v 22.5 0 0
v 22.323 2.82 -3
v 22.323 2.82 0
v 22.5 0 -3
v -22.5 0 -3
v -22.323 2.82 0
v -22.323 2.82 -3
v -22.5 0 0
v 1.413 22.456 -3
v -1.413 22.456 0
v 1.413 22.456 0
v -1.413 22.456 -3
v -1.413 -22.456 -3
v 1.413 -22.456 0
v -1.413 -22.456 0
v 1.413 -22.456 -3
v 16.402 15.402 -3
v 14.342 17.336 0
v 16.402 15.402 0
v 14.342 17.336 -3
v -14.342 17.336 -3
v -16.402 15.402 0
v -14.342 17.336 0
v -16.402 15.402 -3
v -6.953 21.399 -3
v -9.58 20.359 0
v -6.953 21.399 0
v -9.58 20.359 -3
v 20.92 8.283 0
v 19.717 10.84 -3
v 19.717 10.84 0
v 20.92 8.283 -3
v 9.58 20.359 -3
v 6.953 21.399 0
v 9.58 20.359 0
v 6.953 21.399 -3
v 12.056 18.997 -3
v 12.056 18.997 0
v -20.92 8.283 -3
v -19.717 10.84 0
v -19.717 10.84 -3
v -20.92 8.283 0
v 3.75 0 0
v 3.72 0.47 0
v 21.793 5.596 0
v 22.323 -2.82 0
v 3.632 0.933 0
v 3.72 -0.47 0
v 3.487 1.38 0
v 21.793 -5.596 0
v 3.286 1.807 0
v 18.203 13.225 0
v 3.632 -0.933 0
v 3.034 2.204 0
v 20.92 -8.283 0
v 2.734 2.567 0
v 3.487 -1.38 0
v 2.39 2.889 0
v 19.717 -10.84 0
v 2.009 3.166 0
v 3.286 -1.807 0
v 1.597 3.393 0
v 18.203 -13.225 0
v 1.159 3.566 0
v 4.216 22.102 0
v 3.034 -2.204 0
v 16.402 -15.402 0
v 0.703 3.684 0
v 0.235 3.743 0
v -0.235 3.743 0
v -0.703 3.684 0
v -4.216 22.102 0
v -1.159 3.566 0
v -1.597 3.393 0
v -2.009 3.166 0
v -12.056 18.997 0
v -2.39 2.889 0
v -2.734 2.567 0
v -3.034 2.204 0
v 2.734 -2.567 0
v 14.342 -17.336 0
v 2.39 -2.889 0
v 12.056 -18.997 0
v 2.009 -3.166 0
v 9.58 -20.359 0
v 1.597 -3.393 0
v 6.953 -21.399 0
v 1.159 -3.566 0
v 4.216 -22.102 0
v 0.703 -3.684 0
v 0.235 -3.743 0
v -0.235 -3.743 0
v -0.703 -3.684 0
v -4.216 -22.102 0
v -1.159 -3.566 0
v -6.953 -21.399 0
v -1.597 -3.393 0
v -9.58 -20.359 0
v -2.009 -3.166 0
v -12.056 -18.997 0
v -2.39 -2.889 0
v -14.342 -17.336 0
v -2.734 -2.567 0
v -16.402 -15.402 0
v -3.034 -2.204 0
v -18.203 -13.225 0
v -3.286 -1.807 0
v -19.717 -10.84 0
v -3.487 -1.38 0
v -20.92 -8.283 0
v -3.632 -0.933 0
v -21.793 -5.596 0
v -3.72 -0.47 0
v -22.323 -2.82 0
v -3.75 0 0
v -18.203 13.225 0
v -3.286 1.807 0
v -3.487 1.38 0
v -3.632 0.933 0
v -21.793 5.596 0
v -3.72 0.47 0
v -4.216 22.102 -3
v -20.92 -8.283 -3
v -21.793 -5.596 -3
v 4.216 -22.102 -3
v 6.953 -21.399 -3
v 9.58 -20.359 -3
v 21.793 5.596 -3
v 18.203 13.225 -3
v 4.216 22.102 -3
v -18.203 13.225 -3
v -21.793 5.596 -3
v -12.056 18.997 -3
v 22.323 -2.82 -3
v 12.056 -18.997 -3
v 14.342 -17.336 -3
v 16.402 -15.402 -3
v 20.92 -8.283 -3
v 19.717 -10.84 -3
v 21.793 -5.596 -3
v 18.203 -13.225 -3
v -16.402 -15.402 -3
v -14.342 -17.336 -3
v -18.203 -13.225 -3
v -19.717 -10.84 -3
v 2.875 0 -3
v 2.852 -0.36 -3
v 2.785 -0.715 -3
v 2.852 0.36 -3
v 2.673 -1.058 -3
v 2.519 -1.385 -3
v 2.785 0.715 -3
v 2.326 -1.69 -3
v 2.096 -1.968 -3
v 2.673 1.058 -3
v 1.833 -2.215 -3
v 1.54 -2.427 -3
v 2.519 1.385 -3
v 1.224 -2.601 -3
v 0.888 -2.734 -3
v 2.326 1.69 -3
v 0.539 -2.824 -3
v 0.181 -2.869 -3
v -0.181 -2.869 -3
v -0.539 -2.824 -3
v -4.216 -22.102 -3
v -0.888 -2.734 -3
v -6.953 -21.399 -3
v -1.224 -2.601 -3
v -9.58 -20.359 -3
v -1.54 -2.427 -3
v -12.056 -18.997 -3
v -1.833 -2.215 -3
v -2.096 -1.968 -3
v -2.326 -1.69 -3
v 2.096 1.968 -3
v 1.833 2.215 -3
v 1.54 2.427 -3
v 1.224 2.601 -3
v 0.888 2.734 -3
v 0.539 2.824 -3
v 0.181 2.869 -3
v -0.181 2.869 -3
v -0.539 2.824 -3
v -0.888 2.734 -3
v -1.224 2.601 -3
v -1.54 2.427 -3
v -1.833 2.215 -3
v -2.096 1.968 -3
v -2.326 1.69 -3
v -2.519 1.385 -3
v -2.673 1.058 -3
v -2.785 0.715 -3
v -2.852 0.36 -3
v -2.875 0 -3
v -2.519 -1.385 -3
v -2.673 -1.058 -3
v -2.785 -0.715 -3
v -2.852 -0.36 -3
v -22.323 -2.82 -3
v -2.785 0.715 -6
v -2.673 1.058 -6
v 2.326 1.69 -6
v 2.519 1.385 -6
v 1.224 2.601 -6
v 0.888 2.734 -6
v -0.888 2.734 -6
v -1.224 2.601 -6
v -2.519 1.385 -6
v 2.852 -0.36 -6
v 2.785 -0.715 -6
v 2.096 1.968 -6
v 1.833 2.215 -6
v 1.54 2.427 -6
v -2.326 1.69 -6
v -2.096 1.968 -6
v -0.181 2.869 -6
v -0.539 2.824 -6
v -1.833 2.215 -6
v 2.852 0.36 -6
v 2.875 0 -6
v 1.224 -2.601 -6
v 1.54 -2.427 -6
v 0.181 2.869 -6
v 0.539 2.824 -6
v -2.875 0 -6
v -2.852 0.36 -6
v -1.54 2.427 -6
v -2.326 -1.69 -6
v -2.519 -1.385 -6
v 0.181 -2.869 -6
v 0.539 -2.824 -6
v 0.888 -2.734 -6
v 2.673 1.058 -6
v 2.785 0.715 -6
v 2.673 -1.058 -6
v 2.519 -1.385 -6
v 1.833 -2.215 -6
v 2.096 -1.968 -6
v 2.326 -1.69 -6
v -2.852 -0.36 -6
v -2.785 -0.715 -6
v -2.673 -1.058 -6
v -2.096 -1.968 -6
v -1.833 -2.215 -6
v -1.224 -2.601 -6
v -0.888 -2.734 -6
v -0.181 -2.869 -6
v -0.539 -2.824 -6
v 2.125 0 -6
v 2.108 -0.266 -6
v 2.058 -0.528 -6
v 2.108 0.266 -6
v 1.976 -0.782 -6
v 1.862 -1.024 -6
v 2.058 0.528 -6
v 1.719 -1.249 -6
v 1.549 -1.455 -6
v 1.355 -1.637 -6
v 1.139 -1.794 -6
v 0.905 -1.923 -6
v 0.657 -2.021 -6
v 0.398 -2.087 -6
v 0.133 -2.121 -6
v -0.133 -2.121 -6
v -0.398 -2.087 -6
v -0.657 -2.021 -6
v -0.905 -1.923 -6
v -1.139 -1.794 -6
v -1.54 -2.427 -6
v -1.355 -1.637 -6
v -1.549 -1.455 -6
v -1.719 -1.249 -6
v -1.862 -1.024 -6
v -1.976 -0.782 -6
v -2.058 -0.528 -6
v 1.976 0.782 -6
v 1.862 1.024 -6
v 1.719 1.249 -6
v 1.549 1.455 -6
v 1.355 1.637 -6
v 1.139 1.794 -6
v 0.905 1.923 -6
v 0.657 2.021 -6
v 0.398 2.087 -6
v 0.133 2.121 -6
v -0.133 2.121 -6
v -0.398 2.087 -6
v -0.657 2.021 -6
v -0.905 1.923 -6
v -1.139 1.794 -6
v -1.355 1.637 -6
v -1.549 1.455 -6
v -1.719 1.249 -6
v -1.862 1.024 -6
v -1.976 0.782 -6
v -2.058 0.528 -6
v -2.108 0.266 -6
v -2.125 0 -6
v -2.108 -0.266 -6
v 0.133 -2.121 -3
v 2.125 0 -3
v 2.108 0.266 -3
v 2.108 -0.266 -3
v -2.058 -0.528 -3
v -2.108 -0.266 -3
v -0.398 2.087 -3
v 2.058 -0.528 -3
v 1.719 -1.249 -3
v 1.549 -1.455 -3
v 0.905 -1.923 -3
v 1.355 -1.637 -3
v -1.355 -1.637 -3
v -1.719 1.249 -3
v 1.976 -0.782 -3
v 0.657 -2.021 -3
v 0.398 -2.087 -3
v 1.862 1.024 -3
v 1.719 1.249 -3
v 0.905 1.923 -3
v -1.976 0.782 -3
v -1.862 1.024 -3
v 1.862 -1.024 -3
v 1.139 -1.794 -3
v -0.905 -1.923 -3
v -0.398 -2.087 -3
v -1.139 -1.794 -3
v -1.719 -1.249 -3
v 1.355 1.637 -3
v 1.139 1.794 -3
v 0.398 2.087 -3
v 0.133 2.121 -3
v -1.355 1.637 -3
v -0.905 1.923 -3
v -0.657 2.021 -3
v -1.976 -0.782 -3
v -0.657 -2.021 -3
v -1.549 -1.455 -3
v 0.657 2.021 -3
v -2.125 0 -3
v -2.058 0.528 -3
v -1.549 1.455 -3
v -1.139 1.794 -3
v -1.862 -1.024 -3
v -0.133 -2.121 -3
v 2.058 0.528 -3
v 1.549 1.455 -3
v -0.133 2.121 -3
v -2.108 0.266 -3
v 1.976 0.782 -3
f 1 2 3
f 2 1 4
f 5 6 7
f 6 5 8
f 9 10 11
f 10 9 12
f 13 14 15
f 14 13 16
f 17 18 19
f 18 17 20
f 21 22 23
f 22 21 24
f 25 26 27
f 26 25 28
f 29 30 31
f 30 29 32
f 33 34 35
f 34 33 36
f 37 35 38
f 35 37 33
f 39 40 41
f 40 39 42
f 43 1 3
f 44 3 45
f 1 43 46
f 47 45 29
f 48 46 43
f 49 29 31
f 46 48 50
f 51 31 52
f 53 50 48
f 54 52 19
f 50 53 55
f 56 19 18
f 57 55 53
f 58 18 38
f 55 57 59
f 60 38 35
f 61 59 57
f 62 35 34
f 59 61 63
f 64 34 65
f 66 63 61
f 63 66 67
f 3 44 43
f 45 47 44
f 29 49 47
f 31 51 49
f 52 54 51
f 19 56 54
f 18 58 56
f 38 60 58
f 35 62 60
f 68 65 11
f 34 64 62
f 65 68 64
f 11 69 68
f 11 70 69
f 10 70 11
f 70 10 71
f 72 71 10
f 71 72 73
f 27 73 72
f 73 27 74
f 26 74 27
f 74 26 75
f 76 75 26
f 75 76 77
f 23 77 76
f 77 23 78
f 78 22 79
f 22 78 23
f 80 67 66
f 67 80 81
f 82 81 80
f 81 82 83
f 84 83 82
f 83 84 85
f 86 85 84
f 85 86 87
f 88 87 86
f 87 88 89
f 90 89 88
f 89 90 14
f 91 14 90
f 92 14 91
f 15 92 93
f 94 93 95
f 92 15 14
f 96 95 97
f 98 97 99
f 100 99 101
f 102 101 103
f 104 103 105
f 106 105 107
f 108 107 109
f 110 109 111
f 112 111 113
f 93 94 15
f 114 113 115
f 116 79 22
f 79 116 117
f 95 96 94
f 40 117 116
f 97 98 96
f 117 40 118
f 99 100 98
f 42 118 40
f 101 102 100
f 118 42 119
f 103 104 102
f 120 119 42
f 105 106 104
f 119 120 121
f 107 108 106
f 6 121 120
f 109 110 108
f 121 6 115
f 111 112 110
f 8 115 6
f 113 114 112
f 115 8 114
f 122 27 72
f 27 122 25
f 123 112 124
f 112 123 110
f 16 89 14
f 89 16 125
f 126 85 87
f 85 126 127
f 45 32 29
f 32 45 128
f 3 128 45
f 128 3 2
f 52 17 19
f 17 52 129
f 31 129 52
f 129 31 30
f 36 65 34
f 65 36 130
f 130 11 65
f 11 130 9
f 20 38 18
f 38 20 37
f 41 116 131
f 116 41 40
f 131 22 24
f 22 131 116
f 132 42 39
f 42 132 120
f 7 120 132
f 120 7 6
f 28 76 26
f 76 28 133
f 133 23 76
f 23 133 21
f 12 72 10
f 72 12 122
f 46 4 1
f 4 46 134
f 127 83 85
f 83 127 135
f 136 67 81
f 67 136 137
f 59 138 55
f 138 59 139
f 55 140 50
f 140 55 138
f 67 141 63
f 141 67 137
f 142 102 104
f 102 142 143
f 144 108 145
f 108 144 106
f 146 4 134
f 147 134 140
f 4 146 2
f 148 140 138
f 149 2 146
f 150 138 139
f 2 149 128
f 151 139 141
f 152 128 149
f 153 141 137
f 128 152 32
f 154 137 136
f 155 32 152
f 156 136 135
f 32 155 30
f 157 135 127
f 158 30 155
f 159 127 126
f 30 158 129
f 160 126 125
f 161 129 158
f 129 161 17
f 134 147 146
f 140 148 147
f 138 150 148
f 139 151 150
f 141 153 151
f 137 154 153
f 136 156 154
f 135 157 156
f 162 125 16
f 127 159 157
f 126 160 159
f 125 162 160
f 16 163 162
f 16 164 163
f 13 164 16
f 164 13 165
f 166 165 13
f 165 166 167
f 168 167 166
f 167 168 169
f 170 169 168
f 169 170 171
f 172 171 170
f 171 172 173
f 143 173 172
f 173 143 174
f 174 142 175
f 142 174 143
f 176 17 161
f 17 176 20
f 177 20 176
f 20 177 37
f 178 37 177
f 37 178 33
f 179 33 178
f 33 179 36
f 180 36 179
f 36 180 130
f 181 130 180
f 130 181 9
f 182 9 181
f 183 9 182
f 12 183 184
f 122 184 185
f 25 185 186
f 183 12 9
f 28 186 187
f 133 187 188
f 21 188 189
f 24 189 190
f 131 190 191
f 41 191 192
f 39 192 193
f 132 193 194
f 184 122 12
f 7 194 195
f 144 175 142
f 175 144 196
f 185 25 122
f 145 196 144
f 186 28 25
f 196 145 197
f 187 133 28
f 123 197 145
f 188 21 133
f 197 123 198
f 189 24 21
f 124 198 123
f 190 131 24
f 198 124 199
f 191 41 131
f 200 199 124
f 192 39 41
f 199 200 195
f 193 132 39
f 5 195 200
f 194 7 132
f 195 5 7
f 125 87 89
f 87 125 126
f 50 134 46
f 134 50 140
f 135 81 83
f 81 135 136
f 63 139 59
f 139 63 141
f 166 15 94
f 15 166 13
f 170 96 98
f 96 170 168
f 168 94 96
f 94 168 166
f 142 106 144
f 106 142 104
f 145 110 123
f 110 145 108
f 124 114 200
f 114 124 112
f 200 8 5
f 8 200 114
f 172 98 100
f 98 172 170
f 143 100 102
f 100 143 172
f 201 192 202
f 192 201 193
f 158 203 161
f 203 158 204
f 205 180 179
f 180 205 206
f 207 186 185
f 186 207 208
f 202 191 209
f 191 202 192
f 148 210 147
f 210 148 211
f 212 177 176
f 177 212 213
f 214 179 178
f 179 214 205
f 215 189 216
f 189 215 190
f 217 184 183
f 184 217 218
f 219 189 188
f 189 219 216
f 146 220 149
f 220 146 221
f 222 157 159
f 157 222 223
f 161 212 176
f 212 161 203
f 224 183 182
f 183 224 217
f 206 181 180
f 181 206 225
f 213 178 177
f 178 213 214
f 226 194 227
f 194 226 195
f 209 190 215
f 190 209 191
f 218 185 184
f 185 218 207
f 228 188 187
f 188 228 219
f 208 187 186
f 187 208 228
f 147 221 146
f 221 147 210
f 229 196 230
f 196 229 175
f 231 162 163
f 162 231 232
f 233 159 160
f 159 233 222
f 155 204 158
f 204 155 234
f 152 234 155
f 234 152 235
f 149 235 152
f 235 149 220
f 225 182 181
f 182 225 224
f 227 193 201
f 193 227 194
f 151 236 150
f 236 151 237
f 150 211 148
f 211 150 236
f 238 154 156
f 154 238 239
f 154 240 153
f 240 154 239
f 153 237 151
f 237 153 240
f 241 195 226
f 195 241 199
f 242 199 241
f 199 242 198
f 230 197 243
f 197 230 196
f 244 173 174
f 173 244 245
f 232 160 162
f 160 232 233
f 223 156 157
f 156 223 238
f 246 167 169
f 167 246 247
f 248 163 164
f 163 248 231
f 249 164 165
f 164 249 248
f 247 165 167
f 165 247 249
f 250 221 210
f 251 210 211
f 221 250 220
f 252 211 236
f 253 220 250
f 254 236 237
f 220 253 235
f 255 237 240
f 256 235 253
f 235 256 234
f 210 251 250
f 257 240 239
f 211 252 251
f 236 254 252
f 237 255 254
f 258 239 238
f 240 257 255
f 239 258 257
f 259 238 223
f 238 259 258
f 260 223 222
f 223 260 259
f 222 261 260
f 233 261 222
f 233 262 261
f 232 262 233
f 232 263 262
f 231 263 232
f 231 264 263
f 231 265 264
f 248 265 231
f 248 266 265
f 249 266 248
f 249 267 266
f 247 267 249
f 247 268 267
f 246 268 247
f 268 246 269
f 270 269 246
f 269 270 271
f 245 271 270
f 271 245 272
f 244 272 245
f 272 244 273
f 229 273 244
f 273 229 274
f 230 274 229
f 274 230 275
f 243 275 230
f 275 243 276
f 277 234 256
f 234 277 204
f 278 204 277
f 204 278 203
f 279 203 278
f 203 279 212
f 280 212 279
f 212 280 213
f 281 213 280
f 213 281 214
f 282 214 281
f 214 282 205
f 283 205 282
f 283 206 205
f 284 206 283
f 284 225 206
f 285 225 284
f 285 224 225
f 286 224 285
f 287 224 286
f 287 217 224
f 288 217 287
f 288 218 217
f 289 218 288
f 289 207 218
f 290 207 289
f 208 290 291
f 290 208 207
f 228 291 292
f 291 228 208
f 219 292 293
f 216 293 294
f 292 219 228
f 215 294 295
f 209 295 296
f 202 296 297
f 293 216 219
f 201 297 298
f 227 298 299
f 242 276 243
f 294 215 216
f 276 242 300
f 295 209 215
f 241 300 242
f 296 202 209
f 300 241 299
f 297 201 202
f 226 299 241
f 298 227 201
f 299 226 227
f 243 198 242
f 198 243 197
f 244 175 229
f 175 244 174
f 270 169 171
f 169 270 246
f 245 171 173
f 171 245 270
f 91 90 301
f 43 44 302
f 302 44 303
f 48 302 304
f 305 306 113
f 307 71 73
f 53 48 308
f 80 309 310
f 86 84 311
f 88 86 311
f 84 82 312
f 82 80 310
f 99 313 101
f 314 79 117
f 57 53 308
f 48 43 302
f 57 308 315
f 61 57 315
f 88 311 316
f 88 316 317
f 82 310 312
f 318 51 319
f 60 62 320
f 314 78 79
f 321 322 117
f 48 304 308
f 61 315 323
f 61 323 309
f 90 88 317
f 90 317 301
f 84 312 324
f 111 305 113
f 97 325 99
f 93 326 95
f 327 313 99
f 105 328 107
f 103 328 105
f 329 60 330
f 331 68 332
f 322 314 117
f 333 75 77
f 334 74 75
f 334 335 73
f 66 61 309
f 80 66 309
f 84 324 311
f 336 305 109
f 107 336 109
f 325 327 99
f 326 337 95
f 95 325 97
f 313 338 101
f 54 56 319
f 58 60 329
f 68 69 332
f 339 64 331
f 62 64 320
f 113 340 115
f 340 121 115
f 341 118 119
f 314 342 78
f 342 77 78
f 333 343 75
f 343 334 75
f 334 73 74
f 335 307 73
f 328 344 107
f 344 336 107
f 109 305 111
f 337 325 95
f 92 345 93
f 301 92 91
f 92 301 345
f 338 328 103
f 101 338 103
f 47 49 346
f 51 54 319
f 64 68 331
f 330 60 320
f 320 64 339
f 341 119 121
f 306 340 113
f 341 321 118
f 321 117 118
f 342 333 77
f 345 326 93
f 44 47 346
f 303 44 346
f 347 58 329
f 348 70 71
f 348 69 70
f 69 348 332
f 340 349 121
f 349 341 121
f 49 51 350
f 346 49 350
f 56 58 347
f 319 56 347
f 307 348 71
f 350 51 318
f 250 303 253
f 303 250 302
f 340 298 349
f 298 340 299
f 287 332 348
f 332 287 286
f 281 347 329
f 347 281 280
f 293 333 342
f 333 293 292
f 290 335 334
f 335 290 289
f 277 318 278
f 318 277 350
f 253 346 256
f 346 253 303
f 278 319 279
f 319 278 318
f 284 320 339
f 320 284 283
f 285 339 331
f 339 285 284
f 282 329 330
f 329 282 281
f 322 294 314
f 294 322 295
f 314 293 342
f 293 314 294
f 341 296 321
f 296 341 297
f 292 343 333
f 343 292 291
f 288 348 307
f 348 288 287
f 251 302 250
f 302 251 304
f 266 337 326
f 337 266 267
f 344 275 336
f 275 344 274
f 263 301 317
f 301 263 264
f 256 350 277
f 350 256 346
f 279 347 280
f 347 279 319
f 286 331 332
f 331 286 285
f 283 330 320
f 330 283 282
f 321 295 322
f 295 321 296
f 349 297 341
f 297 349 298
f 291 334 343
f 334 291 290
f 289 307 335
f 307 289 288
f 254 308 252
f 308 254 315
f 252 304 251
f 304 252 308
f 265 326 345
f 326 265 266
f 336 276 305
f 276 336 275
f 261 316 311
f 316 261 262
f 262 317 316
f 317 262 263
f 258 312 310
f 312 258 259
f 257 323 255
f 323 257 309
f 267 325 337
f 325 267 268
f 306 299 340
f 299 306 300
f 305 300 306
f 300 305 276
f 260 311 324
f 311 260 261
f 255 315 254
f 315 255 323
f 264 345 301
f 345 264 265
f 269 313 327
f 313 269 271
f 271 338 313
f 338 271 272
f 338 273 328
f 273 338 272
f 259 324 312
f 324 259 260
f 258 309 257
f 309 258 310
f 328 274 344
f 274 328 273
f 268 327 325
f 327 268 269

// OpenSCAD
$fn = 50;


difference() {
	union() {
		translate(v = [0, 0, -3.0000000000]) {
			cylinder(h = 3, r = 22.5000000000);
		}
		translate(v = [0, 0, -6.0000000000]) {
			cylinder(h = 6, r = 2.8750000000);
		}
	}
	union() {
		translate(v = [0, 0, 0]) {
			rotate(a = [0, 0, 0]) {
				difference() {
					union() {
						translate(v = [0, 0, -6.0000000000]) {
							cylinder(h = 6, r = 2.0000000000);
						}
						translate(v = [0, 0, -3]) {
							cylinder(h = 3, r1 = 2.1250000000, r2 = 3.7500000000);
						}
						translate(v = [0, 0, -6.0000000000]) {
							cylinder(h = 6, r = 2.1250000000);
						}
						translate(v = [0, 0, -6.0000000000]) {
							cylinder(h = 6, r = 2.0000000000);
						}
					}
					union();
				}
			}
		}
	}
}
